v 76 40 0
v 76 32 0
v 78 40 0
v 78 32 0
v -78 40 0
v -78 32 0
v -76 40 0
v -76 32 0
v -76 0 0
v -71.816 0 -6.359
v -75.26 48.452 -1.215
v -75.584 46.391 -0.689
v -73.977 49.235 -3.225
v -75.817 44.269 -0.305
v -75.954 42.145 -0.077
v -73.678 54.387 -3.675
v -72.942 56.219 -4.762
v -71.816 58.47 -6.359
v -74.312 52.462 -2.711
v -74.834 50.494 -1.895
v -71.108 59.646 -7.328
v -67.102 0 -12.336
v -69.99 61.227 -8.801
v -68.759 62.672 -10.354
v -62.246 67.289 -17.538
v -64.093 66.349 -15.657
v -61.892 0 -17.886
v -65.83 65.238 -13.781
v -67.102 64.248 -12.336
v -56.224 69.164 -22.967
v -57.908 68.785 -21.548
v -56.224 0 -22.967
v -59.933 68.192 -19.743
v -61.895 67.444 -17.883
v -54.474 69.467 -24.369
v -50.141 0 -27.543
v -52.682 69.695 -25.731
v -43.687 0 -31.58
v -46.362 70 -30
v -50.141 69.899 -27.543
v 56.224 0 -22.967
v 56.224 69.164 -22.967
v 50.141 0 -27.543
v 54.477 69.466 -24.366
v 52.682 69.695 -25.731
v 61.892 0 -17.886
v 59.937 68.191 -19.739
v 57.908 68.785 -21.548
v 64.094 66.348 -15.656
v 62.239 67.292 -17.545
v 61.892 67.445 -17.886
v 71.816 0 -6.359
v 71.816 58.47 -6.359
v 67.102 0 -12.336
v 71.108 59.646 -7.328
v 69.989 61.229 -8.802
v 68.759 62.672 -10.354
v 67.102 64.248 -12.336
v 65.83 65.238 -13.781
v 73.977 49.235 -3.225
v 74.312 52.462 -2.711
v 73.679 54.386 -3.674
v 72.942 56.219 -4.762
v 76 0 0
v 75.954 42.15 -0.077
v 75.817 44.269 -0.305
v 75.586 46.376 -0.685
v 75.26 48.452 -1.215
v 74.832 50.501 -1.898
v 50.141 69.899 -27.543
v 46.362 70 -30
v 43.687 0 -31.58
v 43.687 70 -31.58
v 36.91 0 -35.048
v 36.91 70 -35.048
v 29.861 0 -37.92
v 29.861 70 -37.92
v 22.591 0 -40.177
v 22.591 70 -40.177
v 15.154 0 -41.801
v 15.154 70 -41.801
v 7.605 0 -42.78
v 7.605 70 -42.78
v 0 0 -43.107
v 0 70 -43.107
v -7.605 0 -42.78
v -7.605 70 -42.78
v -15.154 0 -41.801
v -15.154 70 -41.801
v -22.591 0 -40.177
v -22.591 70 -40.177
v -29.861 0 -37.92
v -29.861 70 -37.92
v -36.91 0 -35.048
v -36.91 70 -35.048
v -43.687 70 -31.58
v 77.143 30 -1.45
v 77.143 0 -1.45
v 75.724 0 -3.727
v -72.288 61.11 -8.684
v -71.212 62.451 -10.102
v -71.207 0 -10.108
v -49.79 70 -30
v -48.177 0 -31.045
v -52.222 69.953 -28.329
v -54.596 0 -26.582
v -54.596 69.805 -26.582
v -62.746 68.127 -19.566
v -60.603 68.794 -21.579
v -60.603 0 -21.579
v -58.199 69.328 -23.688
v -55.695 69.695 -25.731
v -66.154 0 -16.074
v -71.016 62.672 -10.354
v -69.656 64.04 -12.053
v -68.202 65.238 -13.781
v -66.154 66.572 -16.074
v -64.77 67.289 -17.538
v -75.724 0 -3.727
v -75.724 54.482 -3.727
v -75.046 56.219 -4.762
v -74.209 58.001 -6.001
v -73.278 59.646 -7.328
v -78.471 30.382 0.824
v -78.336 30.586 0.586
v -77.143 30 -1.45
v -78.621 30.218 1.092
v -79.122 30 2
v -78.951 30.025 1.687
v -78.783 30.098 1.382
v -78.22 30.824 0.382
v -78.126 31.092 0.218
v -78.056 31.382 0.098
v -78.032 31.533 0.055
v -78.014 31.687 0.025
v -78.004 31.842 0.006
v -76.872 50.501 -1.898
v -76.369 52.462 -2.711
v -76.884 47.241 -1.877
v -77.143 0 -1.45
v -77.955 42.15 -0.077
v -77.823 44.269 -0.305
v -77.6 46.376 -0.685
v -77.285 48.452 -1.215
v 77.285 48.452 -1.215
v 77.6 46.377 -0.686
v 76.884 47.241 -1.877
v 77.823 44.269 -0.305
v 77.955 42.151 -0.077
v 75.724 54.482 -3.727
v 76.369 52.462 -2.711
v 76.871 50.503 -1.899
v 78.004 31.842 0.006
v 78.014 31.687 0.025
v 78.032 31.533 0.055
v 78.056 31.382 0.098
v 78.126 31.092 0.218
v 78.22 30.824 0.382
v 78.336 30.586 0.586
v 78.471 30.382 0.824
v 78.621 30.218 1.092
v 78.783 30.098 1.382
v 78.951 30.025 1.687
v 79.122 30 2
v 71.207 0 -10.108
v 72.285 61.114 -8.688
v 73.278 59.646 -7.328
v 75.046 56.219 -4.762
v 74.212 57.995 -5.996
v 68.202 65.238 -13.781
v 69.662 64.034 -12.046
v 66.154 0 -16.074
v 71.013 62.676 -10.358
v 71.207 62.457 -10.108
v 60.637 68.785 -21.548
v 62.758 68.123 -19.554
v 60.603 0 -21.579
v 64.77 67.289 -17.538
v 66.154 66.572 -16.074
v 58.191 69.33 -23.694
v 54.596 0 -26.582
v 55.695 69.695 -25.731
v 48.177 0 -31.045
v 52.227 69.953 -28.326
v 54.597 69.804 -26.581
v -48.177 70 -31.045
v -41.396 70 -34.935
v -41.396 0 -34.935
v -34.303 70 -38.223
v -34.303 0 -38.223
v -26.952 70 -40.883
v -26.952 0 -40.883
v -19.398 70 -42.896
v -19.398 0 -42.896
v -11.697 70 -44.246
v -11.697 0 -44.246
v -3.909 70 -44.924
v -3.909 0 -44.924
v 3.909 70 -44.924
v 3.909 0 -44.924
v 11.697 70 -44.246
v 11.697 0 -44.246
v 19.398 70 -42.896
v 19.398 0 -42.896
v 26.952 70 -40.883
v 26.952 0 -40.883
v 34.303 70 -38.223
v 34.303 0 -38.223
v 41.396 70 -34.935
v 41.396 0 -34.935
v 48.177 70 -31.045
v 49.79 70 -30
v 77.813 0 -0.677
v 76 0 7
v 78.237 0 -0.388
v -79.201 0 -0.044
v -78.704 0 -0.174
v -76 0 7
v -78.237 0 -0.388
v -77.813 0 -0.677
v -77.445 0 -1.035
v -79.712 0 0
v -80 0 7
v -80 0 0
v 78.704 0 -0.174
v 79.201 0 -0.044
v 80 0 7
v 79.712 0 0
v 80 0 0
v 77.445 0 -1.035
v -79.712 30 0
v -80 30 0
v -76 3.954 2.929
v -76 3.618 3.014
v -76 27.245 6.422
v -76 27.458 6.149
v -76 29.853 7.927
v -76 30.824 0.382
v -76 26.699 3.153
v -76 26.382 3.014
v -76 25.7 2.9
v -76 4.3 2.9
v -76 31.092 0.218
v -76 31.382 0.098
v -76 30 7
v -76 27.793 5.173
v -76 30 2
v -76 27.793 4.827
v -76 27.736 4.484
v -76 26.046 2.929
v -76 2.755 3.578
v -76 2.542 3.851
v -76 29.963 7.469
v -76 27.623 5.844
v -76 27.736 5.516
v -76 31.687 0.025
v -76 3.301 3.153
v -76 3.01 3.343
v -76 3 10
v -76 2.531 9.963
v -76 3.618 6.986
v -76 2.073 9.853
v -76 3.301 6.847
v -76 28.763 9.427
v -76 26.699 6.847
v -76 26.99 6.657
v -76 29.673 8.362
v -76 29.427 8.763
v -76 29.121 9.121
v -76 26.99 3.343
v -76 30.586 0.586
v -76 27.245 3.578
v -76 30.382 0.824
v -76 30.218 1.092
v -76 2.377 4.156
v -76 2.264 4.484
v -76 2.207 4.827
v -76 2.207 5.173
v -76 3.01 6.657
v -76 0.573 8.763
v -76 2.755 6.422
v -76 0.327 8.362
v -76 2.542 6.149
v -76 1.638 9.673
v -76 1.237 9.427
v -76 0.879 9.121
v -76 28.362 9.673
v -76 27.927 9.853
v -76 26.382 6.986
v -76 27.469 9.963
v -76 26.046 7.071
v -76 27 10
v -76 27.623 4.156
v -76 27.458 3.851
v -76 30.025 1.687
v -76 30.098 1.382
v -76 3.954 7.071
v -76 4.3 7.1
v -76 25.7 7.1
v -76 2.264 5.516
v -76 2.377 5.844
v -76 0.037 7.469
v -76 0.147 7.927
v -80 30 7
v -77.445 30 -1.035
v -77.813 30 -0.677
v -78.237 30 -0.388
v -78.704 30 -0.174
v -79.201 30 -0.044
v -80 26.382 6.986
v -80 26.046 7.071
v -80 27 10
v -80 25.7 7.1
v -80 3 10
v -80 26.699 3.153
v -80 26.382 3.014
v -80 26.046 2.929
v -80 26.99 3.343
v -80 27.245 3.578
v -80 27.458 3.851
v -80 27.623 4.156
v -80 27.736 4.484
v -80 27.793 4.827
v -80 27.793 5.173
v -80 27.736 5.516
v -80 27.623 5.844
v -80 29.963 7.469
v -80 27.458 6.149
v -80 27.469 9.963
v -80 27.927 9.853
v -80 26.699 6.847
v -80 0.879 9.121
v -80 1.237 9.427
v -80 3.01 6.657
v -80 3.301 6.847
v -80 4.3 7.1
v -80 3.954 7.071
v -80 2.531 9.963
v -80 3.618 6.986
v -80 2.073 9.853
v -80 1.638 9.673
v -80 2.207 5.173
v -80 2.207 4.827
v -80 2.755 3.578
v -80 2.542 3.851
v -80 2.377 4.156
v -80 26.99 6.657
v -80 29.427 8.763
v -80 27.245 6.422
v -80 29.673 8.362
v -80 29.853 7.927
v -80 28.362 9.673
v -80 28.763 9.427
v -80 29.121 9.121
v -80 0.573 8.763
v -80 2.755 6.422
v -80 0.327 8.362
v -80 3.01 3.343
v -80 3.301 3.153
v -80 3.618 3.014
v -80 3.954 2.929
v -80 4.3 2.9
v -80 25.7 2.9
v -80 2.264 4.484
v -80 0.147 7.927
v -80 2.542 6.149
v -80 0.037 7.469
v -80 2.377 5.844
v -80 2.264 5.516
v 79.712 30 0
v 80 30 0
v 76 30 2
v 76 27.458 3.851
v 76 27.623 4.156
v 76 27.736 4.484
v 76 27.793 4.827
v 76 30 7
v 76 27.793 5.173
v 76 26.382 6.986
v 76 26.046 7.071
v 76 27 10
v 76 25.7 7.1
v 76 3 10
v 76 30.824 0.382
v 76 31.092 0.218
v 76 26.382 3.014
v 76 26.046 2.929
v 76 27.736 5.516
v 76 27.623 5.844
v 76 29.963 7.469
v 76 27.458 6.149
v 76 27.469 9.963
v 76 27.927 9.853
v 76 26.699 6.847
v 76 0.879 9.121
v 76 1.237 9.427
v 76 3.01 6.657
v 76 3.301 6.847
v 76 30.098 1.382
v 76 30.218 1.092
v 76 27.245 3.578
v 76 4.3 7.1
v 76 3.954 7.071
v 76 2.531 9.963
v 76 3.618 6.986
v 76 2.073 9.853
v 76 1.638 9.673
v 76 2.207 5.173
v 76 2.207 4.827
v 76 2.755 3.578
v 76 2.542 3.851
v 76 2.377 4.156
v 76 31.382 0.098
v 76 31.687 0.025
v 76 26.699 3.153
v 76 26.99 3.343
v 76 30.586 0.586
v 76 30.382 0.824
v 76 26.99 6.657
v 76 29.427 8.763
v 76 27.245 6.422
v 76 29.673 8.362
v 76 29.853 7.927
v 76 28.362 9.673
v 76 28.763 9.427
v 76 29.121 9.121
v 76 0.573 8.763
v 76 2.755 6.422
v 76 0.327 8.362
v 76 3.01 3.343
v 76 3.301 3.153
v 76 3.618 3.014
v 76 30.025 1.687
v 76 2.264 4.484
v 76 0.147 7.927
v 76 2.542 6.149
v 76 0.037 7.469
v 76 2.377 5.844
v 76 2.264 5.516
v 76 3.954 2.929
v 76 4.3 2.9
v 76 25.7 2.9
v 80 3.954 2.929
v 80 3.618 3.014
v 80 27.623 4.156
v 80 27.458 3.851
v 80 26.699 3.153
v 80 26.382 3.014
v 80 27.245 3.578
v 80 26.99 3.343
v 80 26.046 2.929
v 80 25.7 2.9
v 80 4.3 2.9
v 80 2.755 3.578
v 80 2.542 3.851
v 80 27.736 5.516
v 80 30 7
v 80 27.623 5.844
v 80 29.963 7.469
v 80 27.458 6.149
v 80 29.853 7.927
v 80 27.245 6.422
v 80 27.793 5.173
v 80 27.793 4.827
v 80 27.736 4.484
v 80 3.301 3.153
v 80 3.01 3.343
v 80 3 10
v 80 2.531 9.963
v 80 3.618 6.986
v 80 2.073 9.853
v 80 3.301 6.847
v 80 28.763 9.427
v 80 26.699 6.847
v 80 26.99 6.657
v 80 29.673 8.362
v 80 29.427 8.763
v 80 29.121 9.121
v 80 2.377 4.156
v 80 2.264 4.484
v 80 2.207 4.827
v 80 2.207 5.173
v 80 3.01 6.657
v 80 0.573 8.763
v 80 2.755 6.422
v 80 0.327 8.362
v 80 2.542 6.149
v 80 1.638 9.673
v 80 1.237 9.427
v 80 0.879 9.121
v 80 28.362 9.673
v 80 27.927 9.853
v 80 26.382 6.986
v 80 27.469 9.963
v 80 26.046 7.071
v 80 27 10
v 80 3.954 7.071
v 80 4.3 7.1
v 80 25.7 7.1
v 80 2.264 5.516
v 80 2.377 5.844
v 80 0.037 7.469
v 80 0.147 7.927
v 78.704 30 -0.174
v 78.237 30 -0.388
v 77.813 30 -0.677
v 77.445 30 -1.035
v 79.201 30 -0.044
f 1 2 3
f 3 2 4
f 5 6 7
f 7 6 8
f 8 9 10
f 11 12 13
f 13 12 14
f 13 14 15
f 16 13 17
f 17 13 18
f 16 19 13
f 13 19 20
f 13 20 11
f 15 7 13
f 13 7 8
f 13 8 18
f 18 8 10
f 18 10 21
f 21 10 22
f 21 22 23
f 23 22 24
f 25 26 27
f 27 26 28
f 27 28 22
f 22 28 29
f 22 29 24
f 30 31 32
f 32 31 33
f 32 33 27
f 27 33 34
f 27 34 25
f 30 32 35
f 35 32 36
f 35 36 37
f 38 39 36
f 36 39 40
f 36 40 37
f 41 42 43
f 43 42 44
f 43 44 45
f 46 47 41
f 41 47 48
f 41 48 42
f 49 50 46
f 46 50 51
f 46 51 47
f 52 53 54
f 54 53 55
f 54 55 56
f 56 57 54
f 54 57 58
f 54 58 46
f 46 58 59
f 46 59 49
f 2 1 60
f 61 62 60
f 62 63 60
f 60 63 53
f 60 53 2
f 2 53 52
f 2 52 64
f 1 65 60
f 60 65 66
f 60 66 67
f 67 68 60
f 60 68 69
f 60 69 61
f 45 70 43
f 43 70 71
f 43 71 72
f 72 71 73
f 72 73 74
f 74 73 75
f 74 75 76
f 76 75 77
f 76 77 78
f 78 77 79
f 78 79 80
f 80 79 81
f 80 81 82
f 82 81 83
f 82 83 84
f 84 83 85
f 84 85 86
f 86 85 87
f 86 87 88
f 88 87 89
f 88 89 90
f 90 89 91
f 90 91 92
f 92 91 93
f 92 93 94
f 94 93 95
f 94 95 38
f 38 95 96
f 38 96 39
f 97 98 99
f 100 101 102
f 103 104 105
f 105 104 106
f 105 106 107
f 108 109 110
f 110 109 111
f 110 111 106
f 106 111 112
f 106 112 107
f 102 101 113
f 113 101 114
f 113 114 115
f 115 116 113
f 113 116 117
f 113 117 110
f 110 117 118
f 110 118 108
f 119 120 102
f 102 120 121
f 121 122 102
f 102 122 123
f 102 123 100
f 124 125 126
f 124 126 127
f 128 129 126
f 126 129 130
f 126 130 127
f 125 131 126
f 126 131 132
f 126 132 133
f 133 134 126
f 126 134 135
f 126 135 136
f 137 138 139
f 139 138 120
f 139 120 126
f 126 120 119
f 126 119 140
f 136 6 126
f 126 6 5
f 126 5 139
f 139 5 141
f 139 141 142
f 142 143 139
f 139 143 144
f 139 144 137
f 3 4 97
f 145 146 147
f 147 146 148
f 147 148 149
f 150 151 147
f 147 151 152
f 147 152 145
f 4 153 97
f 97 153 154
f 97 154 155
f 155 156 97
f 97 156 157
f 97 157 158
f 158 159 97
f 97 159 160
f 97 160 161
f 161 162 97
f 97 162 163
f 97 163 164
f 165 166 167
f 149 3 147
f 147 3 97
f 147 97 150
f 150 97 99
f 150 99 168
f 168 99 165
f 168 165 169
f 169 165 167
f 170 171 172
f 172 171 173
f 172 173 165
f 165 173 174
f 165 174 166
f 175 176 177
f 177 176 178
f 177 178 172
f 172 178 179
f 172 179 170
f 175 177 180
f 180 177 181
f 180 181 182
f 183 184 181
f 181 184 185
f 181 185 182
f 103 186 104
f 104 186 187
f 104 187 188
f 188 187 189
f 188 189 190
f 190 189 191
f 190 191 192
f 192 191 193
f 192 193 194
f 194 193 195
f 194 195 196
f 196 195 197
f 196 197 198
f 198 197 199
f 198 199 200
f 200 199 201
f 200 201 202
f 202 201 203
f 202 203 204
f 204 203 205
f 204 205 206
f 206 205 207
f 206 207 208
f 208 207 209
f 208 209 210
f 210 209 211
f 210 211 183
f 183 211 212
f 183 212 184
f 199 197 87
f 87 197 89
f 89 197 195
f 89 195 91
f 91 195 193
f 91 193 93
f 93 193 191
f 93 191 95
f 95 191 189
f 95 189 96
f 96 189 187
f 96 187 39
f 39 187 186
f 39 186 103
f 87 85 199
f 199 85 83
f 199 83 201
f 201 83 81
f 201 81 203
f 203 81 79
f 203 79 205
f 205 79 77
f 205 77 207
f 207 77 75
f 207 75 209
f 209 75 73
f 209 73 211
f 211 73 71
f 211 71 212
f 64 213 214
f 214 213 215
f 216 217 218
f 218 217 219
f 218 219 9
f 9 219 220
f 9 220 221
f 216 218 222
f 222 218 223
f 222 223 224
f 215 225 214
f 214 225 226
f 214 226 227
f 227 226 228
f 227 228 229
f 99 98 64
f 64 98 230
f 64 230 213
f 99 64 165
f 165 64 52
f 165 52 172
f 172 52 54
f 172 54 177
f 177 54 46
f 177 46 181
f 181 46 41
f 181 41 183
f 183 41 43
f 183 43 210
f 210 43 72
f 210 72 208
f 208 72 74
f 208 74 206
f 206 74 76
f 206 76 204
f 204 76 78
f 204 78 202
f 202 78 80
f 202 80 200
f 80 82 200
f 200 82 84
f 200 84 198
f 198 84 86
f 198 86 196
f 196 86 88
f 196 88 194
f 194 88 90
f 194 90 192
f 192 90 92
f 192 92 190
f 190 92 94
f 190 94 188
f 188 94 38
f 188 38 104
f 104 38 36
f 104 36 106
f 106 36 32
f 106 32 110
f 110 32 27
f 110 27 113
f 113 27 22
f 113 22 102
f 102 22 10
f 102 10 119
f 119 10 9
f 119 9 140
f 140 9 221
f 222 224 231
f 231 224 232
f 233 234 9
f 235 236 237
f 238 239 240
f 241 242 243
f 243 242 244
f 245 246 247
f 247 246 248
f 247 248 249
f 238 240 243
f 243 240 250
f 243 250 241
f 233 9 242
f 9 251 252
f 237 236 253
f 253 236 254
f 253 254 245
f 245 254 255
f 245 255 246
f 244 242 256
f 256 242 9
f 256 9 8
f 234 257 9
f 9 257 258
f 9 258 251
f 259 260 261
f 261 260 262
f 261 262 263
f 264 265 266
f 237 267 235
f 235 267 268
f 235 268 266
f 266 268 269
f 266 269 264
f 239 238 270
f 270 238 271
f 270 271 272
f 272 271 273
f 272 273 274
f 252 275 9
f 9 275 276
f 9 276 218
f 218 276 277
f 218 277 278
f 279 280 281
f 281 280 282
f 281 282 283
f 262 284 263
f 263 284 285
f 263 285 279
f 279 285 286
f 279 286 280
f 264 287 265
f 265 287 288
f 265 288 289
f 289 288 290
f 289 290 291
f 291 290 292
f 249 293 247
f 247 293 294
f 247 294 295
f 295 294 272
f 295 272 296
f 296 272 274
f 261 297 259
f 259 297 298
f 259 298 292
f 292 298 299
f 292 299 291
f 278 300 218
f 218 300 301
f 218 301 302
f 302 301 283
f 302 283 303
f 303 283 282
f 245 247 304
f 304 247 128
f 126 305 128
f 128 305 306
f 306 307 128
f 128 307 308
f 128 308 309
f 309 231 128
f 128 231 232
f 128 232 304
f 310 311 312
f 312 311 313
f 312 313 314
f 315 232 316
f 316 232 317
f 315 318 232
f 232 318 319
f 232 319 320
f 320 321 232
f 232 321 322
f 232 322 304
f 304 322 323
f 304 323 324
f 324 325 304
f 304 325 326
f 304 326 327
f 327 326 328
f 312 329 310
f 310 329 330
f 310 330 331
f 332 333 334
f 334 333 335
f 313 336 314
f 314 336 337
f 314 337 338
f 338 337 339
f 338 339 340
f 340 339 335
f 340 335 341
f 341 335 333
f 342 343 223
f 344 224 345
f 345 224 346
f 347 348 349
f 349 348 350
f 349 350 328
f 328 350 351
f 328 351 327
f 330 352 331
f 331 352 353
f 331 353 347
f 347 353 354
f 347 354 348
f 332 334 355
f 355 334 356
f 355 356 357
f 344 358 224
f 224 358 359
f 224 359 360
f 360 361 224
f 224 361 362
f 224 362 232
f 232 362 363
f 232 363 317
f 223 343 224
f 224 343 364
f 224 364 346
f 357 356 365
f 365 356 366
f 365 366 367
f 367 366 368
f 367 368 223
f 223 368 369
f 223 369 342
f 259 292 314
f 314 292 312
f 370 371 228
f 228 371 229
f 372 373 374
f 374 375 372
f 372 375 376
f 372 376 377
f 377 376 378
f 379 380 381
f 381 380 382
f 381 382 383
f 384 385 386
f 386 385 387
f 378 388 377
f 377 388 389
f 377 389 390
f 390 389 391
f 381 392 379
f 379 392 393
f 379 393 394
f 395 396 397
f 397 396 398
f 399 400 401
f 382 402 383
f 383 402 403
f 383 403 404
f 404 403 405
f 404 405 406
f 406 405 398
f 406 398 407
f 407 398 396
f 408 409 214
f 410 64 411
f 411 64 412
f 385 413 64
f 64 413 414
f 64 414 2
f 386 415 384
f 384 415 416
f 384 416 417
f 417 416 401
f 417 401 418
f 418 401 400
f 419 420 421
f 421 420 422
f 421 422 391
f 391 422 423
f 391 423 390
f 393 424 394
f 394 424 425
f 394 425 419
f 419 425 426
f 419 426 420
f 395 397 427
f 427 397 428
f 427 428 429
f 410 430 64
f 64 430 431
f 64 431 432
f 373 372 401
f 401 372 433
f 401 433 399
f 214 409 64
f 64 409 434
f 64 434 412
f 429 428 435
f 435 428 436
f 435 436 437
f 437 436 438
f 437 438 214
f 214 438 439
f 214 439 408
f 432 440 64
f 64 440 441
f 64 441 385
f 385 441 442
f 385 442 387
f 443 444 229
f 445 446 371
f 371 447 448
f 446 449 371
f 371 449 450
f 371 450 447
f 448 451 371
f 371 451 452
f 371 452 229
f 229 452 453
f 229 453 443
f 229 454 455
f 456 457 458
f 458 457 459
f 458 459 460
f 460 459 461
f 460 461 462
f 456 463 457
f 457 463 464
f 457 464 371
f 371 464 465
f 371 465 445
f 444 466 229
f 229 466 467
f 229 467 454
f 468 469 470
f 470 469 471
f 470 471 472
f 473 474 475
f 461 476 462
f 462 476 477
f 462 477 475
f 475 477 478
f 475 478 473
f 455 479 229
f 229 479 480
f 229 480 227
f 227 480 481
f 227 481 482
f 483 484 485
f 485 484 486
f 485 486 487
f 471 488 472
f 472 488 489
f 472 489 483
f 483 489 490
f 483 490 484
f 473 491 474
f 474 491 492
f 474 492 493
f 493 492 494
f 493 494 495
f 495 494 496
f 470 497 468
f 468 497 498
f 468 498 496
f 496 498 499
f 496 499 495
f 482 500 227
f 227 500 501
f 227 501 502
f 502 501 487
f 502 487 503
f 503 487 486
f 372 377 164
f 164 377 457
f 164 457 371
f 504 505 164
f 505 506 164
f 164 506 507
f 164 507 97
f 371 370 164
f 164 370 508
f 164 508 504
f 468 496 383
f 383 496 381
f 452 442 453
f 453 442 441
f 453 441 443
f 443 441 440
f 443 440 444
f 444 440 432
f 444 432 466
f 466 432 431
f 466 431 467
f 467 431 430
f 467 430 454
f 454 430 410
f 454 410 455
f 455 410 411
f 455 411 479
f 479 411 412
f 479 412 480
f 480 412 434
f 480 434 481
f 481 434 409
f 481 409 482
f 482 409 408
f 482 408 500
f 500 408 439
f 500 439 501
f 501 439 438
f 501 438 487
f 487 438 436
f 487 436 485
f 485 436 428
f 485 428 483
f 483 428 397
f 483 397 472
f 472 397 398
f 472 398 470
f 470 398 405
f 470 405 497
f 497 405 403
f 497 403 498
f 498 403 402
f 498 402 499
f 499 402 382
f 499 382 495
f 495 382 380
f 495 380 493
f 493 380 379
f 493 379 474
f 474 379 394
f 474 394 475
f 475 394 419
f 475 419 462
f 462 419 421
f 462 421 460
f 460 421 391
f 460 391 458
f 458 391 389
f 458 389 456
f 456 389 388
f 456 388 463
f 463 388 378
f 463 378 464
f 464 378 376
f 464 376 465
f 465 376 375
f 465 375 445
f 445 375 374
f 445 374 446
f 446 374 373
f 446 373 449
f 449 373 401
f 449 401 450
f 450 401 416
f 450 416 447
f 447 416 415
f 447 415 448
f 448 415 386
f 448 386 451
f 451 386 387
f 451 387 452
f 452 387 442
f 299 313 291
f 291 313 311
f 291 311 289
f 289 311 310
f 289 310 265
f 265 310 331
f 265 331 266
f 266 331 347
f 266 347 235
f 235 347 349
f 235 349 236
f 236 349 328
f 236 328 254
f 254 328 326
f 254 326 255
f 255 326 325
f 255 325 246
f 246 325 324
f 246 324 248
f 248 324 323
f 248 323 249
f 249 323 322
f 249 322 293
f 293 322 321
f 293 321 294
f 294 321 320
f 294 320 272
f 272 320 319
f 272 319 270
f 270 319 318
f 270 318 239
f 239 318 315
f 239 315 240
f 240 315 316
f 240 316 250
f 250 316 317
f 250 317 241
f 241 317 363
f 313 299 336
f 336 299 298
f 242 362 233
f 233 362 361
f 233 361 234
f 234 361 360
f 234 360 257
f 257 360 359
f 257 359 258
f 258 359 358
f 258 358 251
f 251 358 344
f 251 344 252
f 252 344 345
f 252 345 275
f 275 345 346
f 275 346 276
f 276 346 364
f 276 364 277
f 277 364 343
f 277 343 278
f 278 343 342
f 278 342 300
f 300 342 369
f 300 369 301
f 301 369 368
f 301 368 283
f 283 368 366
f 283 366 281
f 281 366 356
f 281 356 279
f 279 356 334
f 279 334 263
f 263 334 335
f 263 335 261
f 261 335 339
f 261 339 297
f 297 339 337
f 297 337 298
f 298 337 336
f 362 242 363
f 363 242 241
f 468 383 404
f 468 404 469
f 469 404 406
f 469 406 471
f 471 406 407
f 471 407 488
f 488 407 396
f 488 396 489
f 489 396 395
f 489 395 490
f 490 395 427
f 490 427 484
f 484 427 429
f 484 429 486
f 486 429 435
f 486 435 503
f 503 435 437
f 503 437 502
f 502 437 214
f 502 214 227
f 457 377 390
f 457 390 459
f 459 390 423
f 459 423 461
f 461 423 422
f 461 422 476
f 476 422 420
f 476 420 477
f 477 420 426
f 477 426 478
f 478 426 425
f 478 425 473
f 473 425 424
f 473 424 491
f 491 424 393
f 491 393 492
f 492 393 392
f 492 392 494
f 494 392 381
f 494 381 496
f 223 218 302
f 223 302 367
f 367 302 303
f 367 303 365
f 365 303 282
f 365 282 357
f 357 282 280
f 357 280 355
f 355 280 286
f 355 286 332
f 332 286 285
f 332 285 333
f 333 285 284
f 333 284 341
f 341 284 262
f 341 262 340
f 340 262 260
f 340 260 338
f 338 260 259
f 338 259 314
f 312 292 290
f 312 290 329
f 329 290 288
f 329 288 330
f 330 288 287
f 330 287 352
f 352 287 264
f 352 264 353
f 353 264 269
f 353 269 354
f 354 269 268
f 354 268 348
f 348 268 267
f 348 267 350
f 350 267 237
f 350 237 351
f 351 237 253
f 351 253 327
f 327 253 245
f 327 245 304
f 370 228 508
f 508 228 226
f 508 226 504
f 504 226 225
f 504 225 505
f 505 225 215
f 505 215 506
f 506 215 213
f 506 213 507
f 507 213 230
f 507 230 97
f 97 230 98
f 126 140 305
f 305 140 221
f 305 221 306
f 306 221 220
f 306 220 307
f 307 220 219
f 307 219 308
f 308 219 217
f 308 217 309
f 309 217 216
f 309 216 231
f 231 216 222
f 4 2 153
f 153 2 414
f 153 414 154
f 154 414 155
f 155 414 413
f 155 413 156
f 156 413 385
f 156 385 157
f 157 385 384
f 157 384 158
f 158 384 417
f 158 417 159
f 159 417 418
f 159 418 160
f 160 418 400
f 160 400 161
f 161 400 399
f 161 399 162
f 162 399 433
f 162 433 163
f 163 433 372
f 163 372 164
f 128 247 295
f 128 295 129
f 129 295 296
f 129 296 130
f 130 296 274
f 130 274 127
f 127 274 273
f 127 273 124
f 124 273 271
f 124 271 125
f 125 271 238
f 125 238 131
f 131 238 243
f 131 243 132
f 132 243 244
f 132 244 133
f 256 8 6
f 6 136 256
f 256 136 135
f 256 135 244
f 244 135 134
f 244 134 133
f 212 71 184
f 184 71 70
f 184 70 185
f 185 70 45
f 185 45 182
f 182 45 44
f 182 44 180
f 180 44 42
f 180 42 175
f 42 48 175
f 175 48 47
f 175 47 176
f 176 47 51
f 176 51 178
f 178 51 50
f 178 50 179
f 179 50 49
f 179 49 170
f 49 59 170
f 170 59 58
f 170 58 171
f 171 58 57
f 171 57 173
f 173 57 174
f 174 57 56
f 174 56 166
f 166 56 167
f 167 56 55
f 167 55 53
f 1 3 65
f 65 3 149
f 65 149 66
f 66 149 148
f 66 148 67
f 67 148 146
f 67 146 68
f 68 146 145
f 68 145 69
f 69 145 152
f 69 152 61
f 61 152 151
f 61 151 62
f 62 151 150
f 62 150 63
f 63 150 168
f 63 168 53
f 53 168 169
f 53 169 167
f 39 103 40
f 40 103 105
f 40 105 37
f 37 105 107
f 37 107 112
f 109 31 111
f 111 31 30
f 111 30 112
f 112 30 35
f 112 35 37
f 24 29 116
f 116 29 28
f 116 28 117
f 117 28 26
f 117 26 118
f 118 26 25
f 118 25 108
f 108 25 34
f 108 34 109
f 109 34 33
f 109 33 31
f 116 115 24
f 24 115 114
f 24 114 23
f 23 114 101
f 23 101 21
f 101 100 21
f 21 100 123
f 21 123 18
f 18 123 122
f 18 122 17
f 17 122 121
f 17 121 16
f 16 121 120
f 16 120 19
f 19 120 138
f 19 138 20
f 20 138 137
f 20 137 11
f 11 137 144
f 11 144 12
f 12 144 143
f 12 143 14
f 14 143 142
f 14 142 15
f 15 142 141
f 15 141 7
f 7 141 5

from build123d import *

# Parameters (mm, degrees)
BOSS_EXTRUDE1_DEPTH = 70
SKETCH3_W           = 4
SKETCH3_H           = 30
BOSS_EXTRUDE2_DEPTH = 10
CUT_EXTRUDE1_DEPTH  = 168
FILLET2_R           = 3
FILLET3_R           = 2
FILLET4_R           = 30


with BuildPart() as part:
    # Sketch1 → Boss-Extrude1 (new body)
    with BuildSketch(Plane(origin=(0, 0, 0), x_dir=(1, 0, 0), z_dir=(0, 1, 0))):
        with BuildLine():
            Line((-78, 0), (-76, 0))
            ThreePointArc((-76, 0), (0, 43.107230832), (76, 0))
            Line((76, 0), (78, 0))
            ThreePointArc((78, 0), (0, 45.008730356), (-78, 0))
        make_face()
    extrude(amount=BOSS_EXTRUDE1_DEPTH)

    # Sketch3 → Boss-Extrude2 (add)
    with BuildSketch(Plane.XY):
        with Locations((-78, 15)):
            Rectangle(SKETCH3_W, SKETCH3_H)
        with Locations((78, 15)):
            Rectangle(SKETCH3_W, SKETCH3_H)
    extrude(amount=BOSS_EXTRUDE2_DEPTH)

    # Sketch4 → Cut-Extrude1 (cut)
    with BuildSketch(Plane.ZY.offset(80)):
        with BuildLine():
            Line((7.1, 25.7), (7.1, 4.3))
            ThreePointArc((7.1, 4.3), (5, 2.2), (2.9, 4.3))
            Line((2.9, 4.3), (2.9, 25.7))
            ThreePointArc((2.9, 25.7), (5, 27.8), (7.1, 25.7))
        make_face()
    extrude(amount=-CUT_EXTRUDE1_DEPTH, mode=Mode.SUBTRACT)

    # Fillet2
    fillet2_edges = [part.edges().sort_by_distance(p)[0] for p in [
        (-78, 15, 0),
        (-78, 30, 10),
        (-78, 0, 10),
        (78, 0, 10),
        (78, 30, 10),
        (78, 15, 0),
    ]]
    fillet(fillet2_edges, radius=FILLET2_R)

    # Fillet3
    fillet3_edges = [part.edges().sort_by_distance(p)[0] for p in [
        (-77, 30, 0),
        (77, 30, 0),
    ]]
    fillet(fillet3_edges, radius=FILLET3_R)

    # Fillet4
    # the kernel refuses this fillet: 30 mm, written as the material it takes off along each edge
    with BuildSketch(Plane(origin=(-153, 70, 0), x_dir=(0, 0, -1), z_dir=(1, 0, 0))) as fillet4_piece_1:
        with BuildLine():
            CenterArc((FILLET4_R, -FILLET4_R), FILLET4_R, 90, 90)
            Line((0, -FILLET4_R), (0, 0))
            Line((0, 0), (FILLET4_R, 0))
        make_face()
    extrude(amount=152, mode=Mode.SUBTRACT)
    with BuildSketch(Plane(origin=(1, 70, 0), x_dir=(0, -1, 0), z_dir=(1, 0, 0))) as fillet4_piece_2:
        with BuildLine():
            CenterArc((FILLET4_R, FILLET4_R), FILLET4_R, 180, 90)
            Line((0, FILLET4_R), (0, 0))
            Line((0, 0), (FILLET4_R, 0))
        make_face()
    extrude(amount=152, mode=Mode.SUBTRACT)


solid = part.part
